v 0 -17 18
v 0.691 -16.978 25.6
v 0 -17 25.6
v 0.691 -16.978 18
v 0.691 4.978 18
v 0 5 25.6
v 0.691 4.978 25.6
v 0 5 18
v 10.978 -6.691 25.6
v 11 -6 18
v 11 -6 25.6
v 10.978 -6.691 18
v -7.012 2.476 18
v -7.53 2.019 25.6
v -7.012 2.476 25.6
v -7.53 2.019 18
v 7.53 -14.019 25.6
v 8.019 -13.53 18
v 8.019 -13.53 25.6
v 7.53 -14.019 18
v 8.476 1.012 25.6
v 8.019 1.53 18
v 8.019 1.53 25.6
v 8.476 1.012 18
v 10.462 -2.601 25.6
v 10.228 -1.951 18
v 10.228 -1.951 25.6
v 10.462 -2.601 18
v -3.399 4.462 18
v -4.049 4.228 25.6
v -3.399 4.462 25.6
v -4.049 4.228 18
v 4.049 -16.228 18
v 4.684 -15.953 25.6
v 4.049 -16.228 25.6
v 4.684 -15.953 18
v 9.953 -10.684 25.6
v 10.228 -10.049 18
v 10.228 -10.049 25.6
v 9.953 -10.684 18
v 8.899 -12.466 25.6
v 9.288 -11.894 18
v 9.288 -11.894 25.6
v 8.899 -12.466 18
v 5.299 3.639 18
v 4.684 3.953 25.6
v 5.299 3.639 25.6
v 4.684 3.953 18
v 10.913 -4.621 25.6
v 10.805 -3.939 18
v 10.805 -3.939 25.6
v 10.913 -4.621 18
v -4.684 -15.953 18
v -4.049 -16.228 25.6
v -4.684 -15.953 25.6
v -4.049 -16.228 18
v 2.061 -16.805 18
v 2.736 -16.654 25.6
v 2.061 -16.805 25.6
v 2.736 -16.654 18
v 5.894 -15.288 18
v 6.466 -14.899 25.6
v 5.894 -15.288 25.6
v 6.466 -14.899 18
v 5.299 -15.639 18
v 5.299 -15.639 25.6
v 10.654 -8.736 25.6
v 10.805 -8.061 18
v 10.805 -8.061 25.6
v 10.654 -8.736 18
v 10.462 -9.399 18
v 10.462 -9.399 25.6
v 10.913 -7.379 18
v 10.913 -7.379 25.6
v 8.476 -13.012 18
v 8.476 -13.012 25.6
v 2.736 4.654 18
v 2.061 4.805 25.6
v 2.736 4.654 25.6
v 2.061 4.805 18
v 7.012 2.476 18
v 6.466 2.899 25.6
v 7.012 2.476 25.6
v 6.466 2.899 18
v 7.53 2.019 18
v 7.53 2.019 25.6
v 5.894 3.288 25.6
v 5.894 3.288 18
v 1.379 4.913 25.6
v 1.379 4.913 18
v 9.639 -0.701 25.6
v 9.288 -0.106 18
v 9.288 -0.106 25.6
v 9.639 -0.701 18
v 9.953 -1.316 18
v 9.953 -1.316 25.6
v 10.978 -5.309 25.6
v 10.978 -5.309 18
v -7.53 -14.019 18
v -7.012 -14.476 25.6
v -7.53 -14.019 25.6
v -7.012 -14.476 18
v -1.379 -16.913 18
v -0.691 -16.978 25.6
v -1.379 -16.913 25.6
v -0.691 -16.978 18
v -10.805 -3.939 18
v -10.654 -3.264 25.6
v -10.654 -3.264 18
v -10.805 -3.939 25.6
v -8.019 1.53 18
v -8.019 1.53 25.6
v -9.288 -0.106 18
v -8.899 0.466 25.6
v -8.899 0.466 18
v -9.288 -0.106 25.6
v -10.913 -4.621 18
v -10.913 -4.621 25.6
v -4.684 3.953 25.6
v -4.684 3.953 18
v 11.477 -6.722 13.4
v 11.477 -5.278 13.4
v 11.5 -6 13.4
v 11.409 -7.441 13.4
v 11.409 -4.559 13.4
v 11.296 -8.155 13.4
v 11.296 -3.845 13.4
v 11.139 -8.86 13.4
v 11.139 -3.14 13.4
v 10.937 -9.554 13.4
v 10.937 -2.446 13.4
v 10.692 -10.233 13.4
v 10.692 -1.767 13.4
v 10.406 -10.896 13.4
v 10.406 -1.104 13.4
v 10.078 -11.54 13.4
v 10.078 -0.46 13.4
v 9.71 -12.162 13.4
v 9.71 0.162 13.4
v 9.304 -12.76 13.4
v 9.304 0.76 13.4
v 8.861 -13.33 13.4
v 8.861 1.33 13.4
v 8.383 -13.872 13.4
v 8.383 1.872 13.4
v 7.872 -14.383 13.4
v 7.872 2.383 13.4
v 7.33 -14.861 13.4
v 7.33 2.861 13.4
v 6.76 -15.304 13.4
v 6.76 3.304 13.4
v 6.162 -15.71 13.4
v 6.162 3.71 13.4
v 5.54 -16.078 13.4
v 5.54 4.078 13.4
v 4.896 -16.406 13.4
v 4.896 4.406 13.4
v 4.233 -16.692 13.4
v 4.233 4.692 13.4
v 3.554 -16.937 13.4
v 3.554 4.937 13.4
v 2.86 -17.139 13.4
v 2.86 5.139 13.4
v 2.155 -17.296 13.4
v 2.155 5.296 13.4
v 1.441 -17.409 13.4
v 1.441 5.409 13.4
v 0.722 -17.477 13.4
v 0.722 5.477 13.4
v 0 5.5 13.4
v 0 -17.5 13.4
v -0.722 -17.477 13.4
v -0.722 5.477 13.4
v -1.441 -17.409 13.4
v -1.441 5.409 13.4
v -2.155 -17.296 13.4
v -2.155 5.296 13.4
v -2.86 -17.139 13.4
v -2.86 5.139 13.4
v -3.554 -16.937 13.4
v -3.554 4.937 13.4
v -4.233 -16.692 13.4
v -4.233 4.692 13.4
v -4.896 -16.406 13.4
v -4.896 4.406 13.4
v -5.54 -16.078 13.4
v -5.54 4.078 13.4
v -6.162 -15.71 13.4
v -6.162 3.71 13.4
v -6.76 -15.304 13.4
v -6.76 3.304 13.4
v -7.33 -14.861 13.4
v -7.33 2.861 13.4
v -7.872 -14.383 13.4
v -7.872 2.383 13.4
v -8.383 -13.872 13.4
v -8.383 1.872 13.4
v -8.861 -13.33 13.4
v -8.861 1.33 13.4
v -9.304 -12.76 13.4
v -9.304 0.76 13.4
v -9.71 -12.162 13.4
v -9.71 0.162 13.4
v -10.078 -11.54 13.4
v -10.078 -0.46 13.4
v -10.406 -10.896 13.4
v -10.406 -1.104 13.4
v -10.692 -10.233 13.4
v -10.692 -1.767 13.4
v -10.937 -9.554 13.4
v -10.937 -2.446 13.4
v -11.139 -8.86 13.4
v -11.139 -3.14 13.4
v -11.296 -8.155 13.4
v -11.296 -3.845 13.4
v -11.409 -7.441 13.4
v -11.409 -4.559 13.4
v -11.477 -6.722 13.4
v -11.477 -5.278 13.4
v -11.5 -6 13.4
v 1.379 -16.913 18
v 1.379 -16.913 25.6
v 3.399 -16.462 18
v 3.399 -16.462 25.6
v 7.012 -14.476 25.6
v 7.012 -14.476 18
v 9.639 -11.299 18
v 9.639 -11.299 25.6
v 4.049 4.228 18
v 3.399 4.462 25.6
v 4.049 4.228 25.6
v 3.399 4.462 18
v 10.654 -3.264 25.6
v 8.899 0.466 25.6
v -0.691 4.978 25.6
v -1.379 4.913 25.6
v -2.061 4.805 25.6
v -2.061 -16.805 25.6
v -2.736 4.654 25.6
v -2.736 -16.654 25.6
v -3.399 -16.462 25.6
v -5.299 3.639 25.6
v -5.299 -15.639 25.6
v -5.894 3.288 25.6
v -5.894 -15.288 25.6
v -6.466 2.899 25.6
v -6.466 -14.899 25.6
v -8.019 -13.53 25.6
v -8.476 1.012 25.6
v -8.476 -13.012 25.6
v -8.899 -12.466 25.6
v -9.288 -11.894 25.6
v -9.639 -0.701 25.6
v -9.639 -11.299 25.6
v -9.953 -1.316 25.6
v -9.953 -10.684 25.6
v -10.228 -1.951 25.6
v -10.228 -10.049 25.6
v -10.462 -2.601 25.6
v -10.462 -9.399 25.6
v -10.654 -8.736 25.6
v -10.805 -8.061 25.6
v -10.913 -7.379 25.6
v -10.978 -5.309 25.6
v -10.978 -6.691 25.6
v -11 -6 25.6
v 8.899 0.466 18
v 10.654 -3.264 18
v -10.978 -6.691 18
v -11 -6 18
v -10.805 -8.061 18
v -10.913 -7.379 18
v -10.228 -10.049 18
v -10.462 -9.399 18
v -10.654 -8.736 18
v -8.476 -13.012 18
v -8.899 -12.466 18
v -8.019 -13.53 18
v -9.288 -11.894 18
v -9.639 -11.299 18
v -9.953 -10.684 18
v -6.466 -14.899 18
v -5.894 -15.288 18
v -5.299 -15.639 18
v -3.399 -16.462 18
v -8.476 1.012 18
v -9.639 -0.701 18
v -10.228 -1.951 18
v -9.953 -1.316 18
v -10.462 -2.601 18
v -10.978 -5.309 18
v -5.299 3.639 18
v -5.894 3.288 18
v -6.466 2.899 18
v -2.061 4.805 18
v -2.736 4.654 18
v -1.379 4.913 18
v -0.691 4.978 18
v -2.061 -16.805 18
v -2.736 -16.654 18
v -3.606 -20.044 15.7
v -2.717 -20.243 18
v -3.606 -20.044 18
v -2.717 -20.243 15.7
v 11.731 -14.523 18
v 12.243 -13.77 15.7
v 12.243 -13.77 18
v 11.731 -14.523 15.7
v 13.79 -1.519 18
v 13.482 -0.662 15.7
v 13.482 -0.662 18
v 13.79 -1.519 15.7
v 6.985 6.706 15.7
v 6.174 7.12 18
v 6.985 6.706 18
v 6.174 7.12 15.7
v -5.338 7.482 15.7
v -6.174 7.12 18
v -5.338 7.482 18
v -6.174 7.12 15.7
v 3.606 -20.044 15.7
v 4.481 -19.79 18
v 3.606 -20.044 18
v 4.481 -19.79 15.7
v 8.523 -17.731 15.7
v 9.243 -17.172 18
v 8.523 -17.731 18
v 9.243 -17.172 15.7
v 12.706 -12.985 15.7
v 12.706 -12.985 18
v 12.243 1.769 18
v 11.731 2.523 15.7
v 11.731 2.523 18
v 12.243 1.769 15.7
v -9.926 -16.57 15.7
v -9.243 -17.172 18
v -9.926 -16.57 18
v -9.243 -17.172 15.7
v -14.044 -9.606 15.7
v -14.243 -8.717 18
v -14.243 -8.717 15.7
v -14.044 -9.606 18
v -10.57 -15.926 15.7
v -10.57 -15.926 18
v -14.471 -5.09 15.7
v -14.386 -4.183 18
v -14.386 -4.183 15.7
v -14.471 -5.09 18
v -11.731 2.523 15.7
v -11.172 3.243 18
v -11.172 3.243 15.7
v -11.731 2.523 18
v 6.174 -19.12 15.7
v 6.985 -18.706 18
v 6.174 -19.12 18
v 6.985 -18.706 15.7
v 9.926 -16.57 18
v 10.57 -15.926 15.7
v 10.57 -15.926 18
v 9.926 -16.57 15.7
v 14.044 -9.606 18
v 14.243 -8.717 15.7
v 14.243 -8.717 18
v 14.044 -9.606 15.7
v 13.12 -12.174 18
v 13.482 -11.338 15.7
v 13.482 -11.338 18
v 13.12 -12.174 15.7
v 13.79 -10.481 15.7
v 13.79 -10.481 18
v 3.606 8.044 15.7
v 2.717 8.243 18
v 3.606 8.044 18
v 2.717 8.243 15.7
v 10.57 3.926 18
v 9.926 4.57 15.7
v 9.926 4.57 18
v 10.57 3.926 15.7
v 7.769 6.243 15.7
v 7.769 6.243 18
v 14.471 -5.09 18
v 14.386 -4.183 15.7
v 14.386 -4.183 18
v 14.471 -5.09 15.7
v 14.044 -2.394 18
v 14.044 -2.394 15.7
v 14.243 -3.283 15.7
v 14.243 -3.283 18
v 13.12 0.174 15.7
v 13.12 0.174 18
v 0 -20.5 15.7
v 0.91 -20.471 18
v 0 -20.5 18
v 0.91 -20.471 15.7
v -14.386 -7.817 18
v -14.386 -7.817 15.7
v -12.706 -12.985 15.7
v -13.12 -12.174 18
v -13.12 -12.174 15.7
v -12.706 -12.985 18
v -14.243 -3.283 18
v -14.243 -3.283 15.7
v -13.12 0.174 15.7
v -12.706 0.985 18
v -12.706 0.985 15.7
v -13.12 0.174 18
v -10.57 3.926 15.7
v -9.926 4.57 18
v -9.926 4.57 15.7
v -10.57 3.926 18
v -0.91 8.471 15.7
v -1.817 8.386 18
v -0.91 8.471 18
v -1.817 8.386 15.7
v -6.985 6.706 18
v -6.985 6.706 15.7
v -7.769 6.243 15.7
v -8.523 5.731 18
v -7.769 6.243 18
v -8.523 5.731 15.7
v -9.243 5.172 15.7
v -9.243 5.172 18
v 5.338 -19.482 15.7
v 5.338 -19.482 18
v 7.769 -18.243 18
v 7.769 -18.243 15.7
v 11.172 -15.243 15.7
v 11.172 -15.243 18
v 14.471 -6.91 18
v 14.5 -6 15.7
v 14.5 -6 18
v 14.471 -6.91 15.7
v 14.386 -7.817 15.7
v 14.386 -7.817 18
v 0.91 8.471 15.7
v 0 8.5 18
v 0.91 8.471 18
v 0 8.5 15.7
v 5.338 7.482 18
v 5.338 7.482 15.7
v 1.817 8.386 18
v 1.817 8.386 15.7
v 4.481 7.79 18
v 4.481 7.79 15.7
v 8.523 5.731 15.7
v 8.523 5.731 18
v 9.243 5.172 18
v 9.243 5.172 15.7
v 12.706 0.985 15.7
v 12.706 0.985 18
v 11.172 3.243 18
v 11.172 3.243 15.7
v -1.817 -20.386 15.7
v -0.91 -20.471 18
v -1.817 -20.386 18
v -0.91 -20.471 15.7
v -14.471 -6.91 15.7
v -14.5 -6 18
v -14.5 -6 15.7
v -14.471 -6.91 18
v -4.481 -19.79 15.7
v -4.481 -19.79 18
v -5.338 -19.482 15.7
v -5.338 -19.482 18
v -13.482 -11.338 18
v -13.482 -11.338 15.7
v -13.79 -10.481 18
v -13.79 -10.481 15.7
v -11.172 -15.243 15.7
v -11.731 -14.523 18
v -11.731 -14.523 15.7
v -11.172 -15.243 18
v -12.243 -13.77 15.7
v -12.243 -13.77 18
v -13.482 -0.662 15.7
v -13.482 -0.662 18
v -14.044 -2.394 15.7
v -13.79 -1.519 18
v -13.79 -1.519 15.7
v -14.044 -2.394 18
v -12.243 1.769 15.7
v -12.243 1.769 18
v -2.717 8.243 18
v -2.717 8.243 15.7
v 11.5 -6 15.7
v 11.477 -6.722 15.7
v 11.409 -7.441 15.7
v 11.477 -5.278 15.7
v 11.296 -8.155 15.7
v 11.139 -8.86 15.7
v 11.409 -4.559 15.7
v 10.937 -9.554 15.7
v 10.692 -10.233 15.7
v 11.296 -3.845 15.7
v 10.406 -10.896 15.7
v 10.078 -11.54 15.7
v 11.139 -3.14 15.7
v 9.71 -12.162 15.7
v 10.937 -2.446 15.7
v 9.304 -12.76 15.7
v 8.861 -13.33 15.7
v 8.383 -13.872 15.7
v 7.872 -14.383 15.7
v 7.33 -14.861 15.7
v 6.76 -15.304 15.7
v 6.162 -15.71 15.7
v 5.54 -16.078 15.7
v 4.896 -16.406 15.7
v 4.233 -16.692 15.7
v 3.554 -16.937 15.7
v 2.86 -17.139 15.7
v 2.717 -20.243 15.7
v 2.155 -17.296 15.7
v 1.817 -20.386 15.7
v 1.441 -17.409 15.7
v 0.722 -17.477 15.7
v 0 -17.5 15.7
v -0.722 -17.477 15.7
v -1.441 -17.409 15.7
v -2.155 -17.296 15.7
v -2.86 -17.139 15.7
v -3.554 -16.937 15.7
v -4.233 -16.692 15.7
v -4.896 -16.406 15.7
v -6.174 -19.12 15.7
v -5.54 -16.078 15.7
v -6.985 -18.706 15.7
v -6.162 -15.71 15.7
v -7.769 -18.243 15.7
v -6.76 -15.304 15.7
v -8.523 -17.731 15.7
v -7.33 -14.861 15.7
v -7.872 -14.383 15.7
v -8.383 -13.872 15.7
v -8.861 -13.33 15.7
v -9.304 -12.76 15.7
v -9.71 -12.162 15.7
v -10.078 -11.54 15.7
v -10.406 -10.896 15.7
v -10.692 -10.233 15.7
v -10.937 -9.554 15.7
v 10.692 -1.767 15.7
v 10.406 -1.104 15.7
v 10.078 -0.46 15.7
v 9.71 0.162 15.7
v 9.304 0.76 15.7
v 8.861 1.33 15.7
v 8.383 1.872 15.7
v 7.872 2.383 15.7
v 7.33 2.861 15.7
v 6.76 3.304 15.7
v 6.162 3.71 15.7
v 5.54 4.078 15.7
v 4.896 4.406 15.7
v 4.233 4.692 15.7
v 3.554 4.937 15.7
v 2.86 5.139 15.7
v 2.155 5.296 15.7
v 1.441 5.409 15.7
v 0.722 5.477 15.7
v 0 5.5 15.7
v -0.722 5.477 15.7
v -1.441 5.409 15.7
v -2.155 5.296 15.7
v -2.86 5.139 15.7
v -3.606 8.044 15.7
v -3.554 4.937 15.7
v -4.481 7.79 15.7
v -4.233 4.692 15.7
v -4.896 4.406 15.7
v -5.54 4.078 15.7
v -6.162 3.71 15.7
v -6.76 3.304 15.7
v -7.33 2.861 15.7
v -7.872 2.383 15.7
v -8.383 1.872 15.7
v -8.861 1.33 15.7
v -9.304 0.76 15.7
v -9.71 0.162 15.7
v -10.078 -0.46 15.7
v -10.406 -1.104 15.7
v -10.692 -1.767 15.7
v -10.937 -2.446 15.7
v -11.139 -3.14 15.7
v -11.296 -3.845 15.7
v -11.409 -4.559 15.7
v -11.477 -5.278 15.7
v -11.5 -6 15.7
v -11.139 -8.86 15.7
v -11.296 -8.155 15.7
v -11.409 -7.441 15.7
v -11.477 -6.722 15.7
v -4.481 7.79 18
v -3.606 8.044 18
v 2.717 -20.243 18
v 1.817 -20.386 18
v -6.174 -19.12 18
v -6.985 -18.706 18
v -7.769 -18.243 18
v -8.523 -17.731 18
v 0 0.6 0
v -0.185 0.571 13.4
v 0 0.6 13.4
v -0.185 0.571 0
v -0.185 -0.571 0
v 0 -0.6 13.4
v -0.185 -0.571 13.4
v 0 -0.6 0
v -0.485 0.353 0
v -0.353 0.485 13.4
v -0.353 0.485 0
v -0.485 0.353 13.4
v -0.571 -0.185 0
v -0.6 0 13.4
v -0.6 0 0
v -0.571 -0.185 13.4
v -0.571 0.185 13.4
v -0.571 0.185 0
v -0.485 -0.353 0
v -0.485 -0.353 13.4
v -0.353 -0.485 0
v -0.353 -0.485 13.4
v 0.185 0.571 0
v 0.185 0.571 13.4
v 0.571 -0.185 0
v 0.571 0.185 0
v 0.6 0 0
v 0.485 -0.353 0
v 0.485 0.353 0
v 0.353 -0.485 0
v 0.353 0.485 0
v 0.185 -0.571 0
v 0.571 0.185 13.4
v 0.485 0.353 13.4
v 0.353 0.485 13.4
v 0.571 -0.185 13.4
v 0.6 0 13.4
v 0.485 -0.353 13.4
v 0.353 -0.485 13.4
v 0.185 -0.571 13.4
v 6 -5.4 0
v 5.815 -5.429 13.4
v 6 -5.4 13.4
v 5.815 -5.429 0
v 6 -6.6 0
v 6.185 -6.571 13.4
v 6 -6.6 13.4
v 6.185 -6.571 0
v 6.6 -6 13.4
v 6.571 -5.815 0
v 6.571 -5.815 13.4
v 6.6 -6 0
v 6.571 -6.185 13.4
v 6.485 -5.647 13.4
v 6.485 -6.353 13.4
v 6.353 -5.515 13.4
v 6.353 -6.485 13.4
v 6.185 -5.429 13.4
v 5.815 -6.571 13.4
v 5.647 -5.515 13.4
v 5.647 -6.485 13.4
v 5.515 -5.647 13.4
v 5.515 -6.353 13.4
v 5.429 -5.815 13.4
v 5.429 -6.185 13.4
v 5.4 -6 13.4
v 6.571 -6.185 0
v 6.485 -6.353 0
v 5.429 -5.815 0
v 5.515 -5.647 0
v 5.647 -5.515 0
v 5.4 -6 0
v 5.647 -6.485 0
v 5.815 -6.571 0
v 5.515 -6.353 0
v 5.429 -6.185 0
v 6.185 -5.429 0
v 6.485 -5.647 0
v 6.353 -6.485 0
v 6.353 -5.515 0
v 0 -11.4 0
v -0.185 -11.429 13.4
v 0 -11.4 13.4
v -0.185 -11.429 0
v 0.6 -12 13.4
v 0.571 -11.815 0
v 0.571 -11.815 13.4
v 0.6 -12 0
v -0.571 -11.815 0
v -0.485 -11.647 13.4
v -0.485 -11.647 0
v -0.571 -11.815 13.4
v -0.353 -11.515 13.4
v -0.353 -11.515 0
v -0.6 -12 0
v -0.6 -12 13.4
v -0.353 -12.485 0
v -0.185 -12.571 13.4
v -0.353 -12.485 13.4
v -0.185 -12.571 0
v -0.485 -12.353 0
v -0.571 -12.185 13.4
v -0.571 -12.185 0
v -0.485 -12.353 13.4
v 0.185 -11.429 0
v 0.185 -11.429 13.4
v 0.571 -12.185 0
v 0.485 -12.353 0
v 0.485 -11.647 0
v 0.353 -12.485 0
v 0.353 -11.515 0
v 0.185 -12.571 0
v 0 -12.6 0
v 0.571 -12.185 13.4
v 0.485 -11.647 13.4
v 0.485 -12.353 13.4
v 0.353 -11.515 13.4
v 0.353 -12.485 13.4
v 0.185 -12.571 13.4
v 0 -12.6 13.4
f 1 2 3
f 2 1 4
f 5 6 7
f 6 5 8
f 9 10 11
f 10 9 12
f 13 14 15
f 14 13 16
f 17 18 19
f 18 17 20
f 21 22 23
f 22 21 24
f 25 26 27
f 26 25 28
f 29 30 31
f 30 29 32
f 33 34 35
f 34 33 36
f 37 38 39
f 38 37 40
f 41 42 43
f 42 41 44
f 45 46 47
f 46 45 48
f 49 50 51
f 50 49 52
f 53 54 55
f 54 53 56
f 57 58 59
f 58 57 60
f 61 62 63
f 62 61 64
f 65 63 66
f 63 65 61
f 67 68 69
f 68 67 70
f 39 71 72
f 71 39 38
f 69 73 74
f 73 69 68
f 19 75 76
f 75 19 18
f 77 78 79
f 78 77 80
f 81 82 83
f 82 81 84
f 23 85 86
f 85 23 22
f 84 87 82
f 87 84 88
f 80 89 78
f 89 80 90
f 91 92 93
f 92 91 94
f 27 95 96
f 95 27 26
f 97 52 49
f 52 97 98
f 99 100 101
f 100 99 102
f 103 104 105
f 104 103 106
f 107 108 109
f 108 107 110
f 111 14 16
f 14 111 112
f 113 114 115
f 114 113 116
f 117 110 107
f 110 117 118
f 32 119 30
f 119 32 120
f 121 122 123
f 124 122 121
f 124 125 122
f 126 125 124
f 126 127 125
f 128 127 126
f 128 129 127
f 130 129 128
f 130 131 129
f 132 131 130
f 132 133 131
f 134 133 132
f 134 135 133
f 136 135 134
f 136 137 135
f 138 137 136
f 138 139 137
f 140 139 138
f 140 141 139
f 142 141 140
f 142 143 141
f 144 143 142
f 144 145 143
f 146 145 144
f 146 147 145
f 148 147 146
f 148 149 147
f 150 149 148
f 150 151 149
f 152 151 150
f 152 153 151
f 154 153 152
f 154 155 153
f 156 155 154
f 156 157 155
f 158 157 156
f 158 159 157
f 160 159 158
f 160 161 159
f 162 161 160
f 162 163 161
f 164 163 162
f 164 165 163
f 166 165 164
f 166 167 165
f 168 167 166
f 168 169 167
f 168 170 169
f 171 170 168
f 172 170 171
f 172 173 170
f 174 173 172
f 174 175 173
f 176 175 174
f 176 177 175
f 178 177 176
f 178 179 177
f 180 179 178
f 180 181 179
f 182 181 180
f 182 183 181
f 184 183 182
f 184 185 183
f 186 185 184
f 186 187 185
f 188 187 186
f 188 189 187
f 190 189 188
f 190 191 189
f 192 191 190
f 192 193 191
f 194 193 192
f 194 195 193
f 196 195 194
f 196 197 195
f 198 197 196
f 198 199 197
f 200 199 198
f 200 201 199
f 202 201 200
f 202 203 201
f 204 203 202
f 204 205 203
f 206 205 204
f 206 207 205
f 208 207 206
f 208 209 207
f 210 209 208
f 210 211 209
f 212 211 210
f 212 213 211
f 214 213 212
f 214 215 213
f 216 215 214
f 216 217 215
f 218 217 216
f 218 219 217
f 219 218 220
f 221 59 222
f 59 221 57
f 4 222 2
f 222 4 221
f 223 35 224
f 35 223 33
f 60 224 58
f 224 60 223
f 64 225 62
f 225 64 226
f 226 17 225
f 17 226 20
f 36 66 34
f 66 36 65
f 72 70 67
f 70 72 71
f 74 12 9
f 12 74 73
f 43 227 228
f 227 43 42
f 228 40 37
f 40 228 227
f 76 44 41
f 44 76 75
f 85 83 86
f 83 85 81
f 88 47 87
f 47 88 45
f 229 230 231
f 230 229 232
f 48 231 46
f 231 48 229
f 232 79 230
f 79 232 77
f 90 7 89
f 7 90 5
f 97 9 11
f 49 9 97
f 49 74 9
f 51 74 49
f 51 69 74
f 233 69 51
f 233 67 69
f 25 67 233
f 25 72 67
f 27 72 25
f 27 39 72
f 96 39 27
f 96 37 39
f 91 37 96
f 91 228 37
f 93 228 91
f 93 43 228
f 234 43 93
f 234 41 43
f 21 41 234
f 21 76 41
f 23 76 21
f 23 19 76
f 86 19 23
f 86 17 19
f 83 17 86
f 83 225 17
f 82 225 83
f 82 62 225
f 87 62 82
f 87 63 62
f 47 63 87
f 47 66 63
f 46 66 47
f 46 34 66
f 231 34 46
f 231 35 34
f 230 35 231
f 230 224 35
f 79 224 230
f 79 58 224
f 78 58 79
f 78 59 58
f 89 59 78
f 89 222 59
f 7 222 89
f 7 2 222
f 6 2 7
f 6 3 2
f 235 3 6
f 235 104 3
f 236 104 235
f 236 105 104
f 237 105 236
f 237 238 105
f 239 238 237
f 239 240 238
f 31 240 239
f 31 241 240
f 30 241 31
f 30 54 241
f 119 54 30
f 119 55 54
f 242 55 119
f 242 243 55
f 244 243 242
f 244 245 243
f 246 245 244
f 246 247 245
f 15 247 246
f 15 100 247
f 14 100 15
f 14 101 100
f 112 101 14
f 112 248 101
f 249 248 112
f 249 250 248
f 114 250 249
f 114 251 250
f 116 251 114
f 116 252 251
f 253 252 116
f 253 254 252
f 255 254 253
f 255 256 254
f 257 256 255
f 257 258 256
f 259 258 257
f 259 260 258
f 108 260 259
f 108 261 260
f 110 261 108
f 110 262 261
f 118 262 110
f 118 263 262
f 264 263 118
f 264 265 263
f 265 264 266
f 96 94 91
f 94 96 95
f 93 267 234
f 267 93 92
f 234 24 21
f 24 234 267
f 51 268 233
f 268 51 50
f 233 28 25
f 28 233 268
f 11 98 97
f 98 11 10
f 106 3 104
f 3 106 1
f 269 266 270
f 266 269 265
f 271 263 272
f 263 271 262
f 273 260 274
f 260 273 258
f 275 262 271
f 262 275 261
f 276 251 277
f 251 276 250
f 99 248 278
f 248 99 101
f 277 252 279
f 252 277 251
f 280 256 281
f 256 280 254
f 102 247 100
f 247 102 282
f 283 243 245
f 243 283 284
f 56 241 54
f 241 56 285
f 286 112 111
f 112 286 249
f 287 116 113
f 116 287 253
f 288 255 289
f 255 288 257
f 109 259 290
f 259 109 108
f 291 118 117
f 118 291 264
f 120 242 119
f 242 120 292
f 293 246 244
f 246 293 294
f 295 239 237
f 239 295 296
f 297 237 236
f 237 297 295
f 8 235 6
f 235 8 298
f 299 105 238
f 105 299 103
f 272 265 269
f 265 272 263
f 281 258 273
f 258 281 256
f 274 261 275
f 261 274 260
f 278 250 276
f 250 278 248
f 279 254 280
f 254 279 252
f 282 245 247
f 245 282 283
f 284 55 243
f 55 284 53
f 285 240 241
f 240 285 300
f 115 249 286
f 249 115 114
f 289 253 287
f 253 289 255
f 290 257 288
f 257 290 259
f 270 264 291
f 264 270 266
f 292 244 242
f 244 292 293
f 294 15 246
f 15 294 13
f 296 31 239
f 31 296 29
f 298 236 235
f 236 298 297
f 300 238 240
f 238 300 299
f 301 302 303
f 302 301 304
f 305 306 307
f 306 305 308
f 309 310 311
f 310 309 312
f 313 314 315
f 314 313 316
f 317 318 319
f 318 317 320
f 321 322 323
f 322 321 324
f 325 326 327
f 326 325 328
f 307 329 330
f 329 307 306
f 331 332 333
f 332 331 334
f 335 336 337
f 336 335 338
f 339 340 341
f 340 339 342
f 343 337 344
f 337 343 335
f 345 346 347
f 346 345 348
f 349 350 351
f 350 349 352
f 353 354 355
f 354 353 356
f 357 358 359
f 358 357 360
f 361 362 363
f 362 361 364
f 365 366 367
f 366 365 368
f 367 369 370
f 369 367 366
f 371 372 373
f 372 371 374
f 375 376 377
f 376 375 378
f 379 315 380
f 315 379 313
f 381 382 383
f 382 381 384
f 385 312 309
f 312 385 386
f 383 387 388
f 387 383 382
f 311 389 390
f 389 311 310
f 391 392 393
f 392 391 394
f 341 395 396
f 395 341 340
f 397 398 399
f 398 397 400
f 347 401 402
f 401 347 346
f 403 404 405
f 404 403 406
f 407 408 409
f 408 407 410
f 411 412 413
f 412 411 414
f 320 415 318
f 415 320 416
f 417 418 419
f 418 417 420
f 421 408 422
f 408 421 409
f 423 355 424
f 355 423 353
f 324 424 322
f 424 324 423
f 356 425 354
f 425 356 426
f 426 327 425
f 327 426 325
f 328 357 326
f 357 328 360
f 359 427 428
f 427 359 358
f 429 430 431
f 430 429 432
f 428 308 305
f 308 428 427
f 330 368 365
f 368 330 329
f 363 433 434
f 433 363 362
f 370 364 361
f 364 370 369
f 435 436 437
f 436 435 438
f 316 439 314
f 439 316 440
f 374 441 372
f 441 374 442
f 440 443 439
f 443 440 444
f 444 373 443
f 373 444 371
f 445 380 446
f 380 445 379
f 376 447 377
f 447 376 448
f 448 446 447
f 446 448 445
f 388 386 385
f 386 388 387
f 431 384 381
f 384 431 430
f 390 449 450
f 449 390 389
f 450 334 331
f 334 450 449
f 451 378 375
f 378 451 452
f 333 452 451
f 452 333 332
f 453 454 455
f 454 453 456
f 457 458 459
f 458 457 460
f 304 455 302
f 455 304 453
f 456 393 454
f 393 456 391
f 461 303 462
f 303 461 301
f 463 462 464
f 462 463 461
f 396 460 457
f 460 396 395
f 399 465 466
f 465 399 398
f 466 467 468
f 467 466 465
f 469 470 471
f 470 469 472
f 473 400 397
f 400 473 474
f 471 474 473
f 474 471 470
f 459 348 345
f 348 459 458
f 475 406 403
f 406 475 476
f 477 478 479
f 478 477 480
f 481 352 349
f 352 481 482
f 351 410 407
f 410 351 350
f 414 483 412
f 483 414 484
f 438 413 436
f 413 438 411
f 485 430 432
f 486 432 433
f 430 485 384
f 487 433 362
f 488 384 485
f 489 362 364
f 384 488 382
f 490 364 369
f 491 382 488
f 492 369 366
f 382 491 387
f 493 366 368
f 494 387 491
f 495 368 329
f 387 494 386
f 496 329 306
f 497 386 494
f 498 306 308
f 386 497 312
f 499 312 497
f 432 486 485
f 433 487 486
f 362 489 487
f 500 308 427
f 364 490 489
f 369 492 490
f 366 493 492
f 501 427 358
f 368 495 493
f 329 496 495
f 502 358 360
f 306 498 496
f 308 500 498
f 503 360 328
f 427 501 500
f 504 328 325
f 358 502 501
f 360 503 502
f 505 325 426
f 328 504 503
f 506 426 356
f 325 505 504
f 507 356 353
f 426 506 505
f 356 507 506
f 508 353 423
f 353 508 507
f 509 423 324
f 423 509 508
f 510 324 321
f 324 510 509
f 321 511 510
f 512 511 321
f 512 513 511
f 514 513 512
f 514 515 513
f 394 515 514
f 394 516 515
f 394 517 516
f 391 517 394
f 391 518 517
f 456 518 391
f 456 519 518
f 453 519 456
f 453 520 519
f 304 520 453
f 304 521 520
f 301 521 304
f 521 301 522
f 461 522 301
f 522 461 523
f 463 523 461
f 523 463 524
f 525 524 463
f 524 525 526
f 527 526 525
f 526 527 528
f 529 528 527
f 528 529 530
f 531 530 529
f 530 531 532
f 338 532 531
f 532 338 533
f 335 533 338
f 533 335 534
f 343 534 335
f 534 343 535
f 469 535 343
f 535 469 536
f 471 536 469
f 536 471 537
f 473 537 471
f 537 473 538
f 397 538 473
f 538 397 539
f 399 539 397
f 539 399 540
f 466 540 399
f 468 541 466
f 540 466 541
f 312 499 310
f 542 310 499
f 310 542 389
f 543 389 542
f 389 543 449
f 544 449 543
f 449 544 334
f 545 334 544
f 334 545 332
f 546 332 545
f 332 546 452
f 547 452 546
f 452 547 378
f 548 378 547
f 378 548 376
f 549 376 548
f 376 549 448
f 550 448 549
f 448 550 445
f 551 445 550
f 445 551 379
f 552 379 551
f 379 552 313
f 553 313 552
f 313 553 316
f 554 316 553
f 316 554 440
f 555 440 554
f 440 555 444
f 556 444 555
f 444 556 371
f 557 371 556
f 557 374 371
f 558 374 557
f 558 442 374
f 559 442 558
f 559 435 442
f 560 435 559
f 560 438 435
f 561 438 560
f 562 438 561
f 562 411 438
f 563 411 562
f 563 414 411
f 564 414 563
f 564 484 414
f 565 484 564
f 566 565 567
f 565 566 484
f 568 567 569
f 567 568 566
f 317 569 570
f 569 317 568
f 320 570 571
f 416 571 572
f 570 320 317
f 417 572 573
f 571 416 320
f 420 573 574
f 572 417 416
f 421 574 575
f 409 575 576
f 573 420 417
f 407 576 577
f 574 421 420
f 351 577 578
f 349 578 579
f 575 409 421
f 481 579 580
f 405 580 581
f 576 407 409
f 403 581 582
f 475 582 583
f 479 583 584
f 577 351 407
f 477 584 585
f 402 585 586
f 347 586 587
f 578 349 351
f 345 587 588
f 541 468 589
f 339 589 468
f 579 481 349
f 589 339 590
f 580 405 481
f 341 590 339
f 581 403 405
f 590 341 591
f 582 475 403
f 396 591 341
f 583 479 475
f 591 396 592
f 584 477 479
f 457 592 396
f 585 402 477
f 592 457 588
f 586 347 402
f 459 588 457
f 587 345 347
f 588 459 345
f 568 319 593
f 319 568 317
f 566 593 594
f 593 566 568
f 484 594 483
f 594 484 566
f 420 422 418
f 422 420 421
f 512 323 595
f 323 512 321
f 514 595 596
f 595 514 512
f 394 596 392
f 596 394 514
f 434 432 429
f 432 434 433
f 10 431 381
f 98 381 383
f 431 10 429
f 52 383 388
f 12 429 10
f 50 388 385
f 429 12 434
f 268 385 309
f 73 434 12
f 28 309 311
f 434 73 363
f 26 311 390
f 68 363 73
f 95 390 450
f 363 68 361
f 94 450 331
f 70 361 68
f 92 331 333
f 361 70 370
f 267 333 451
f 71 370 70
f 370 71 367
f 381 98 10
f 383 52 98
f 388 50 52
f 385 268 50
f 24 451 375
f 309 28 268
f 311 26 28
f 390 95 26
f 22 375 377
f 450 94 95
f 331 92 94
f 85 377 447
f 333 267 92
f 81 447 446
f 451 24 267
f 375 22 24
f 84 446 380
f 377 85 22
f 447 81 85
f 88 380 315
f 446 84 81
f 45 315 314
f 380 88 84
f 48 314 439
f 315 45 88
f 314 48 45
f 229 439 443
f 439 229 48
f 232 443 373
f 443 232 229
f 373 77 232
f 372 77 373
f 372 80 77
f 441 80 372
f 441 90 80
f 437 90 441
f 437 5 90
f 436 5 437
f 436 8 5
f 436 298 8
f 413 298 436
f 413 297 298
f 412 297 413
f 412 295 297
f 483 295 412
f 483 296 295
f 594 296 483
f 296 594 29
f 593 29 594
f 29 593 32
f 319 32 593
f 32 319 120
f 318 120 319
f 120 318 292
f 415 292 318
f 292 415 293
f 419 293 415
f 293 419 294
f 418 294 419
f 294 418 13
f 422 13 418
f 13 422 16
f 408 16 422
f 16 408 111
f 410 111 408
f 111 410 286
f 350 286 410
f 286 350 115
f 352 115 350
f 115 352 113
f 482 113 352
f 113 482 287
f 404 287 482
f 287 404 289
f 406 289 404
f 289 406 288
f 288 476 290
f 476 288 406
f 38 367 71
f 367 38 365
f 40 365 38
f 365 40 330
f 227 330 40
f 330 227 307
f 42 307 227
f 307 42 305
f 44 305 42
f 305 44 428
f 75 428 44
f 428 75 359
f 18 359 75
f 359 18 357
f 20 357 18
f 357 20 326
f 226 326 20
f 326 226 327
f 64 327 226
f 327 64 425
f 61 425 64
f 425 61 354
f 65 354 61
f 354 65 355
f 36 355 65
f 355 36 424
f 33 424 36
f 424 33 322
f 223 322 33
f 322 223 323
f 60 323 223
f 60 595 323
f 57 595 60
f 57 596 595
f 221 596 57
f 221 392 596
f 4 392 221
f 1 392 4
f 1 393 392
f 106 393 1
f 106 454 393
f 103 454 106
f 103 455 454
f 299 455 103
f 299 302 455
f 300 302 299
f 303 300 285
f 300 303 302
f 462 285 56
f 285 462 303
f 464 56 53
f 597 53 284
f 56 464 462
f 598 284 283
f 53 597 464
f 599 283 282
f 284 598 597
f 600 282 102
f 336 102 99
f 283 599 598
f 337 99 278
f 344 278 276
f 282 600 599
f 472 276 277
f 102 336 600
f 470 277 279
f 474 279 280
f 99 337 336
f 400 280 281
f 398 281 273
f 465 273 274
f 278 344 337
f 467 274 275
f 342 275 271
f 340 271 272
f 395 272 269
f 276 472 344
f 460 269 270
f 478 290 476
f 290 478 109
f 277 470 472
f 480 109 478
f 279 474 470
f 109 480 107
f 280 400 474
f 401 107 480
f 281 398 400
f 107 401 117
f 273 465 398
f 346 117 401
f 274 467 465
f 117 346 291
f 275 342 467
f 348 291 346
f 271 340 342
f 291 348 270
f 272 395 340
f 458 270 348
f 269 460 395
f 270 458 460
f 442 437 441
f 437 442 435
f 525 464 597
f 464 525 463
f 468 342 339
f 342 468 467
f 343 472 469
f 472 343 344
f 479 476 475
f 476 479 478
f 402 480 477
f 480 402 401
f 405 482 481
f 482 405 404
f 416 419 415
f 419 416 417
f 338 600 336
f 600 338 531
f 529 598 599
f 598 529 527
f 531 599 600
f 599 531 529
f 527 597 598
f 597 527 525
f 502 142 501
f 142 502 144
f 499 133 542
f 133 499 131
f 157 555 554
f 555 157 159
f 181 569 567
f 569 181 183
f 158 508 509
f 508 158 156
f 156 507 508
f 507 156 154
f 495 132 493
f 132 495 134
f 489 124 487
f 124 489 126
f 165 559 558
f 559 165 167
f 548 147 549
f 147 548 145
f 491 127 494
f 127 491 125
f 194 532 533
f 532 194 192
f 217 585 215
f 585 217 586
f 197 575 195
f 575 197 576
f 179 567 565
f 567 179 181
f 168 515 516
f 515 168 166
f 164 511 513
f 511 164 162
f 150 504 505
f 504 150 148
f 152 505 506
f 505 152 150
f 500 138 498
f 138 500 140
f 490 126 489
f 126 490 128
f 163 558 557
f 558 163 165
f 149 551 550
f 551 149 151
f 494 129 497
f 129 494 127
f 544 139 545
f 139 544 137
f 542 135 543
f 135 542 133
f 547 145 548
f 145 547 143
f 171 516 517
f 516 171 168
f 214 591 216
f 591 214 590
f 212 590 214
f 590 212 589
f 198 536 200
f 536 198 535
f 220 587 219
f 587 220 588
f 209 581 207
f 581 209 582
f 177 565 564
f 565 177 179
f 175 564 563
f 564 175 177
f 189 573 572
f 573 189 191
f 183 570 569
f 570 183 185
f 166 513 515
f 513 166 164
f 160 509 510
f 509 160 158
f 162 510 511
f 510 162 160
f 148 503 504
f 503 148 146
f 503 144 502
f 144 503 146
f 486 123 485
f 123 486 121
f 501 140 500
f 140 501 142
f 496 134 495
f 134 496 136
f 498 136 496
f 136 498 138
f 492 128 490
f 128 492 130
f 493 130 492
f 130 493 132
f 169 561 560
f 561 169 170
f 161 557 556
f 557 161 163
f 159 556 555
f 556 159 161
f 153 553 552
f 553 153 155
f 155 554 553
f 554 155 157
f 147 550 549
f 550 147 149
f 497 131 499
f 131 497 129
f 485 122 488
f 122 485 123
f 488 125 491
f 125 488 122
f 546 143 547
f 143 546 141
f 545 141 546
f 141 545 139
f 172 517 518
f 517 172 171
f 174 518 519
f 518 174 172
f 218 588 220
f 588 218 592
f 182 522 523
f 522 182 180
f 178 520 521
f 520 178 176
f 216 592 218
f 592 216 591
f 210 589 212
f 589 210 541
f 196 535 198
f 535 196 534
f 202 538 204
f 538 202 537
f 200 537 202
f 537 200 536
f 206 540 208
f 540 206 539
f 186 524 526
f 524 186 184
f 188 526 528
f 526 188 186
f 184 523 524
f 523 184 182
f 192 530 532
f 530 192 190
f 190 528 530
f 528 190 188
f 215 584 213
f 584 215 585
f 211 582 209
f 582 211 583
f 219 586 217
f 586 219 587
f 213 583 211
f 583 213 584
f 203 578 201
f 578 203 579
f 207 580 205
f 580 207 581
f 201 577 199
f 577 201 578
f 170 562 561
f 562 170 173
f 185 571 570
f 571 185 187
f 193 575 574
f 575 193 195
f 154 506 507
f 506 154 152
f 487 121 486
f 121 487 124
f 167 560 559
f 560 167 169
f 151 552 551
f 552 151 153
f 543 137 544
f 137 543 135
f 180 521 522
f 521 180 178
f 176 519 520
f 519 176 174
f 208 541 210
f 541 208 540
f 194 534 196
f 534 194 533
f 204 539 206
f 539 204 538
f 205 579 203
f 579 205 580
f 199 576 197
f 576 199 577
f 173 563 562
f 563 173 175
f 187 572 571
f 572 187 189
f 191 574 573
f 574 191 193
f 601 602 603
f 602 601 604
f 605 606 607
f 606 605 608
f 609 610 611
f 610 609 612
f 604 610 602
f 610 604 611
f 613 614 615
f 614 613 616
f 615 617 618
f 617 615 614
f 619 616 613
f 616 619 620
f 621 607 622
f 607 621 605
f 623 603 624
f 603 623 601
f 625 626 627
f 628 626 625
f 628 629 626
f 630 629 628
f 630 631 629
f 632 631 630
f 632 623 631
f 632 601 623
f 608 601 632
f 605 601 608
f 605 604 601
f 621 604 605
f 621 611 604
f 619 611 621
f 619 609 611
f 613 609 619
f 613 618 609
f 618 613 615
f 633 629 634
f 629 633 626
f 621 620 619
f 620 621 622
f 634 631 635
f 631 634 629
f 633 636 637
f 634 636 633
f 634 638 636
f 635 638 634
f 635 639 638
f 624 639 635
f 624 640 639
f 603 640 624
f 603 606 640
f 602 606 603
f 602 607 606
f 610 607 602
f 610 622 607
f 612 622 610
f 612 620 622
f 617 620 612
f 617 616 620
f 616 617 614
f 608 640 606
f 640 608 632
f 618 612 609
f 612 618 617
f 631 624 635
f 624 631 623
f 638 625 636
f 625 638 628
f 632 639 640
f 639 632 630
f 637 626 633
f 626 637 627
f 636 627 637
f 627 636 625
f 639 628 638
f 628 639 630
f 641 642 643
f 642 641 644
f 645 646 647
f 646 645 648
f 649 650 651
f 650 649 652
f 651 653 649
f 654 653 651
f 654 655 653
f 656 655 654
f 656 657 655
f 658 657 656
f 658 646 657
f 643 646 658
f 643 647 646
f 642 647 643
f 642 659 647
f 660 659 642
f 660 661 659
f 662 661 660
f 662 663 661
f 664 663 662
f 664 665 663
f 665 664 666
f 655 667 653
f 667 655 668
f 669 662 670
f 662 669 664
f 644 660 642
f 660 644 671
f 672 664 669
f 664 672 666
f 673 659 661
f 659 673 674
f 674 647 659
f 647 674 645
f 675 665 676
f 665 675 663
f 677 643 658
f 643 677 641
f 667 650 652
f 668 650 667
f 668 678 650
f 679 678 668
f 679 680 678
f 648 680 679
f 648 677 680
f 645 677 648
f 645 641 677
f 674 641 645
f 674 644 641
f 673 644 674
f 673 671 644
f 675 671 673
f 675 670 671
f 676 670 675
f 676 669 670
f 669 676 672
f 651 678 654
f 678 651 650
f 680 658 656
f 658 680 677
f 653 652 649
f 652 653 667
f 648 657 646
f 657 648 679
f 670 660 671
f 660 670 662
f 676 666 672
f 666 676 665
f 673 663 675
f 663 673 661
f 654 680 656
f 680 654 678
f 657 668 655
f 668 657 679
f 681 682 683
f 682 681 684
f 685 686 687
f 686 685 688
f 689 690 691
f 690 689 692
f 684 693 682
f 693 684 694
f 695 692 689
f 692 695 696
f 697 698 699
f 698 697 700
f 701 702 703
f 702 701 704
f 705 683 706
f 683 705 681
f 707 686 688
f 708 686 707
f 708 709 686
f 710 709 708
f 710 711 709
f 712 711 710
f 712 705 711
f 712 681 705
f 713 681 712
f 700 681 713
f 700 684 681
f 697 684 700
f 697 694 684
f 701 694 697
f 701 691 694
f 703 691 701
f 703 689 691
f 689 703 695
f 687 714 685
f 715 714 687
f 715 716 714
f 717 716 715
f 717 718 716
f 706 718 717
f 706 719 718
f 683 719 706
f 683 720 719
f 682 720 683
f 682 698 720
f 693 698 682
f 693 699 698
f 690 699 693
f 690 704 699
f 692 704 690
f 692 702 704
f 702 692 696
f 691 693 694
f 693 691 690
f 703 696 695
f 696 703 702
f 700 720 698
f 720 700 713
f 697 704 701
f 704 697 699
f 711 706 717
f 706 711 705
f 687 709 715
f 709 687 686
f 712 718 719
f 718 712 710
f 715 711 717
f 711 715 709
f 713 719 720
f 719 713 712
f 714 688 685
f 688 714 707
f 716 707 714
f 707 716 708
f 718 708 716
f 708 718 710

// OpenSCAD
/**
 * Корпус
 */
module body() {
    cylinder(h=12.2, r=22/2, $fn=100);
    translate([0, 0, 4.6 / 2]) cylinder(h=4.6 / 2, r=29/2, $fn=100);
    cylinder(h=4.6 / 2, r=23/2, $fn=100);
}

/**
 * Вывод
 */
module lead() {
    cylinder(h=13.4, r=1.2/2, $fn=20);
}

rotate([0,0,270]) {
    translate([6, 0, 13.4]) body();
    rotate([0,0,180]) translate([0, 0, 0]) lead();
    rotate([0,0,180]) translate([-6, -6, 0]) lead();
    rotate([0,0,180]) translate([-12, 0, 0]) lead();
}
